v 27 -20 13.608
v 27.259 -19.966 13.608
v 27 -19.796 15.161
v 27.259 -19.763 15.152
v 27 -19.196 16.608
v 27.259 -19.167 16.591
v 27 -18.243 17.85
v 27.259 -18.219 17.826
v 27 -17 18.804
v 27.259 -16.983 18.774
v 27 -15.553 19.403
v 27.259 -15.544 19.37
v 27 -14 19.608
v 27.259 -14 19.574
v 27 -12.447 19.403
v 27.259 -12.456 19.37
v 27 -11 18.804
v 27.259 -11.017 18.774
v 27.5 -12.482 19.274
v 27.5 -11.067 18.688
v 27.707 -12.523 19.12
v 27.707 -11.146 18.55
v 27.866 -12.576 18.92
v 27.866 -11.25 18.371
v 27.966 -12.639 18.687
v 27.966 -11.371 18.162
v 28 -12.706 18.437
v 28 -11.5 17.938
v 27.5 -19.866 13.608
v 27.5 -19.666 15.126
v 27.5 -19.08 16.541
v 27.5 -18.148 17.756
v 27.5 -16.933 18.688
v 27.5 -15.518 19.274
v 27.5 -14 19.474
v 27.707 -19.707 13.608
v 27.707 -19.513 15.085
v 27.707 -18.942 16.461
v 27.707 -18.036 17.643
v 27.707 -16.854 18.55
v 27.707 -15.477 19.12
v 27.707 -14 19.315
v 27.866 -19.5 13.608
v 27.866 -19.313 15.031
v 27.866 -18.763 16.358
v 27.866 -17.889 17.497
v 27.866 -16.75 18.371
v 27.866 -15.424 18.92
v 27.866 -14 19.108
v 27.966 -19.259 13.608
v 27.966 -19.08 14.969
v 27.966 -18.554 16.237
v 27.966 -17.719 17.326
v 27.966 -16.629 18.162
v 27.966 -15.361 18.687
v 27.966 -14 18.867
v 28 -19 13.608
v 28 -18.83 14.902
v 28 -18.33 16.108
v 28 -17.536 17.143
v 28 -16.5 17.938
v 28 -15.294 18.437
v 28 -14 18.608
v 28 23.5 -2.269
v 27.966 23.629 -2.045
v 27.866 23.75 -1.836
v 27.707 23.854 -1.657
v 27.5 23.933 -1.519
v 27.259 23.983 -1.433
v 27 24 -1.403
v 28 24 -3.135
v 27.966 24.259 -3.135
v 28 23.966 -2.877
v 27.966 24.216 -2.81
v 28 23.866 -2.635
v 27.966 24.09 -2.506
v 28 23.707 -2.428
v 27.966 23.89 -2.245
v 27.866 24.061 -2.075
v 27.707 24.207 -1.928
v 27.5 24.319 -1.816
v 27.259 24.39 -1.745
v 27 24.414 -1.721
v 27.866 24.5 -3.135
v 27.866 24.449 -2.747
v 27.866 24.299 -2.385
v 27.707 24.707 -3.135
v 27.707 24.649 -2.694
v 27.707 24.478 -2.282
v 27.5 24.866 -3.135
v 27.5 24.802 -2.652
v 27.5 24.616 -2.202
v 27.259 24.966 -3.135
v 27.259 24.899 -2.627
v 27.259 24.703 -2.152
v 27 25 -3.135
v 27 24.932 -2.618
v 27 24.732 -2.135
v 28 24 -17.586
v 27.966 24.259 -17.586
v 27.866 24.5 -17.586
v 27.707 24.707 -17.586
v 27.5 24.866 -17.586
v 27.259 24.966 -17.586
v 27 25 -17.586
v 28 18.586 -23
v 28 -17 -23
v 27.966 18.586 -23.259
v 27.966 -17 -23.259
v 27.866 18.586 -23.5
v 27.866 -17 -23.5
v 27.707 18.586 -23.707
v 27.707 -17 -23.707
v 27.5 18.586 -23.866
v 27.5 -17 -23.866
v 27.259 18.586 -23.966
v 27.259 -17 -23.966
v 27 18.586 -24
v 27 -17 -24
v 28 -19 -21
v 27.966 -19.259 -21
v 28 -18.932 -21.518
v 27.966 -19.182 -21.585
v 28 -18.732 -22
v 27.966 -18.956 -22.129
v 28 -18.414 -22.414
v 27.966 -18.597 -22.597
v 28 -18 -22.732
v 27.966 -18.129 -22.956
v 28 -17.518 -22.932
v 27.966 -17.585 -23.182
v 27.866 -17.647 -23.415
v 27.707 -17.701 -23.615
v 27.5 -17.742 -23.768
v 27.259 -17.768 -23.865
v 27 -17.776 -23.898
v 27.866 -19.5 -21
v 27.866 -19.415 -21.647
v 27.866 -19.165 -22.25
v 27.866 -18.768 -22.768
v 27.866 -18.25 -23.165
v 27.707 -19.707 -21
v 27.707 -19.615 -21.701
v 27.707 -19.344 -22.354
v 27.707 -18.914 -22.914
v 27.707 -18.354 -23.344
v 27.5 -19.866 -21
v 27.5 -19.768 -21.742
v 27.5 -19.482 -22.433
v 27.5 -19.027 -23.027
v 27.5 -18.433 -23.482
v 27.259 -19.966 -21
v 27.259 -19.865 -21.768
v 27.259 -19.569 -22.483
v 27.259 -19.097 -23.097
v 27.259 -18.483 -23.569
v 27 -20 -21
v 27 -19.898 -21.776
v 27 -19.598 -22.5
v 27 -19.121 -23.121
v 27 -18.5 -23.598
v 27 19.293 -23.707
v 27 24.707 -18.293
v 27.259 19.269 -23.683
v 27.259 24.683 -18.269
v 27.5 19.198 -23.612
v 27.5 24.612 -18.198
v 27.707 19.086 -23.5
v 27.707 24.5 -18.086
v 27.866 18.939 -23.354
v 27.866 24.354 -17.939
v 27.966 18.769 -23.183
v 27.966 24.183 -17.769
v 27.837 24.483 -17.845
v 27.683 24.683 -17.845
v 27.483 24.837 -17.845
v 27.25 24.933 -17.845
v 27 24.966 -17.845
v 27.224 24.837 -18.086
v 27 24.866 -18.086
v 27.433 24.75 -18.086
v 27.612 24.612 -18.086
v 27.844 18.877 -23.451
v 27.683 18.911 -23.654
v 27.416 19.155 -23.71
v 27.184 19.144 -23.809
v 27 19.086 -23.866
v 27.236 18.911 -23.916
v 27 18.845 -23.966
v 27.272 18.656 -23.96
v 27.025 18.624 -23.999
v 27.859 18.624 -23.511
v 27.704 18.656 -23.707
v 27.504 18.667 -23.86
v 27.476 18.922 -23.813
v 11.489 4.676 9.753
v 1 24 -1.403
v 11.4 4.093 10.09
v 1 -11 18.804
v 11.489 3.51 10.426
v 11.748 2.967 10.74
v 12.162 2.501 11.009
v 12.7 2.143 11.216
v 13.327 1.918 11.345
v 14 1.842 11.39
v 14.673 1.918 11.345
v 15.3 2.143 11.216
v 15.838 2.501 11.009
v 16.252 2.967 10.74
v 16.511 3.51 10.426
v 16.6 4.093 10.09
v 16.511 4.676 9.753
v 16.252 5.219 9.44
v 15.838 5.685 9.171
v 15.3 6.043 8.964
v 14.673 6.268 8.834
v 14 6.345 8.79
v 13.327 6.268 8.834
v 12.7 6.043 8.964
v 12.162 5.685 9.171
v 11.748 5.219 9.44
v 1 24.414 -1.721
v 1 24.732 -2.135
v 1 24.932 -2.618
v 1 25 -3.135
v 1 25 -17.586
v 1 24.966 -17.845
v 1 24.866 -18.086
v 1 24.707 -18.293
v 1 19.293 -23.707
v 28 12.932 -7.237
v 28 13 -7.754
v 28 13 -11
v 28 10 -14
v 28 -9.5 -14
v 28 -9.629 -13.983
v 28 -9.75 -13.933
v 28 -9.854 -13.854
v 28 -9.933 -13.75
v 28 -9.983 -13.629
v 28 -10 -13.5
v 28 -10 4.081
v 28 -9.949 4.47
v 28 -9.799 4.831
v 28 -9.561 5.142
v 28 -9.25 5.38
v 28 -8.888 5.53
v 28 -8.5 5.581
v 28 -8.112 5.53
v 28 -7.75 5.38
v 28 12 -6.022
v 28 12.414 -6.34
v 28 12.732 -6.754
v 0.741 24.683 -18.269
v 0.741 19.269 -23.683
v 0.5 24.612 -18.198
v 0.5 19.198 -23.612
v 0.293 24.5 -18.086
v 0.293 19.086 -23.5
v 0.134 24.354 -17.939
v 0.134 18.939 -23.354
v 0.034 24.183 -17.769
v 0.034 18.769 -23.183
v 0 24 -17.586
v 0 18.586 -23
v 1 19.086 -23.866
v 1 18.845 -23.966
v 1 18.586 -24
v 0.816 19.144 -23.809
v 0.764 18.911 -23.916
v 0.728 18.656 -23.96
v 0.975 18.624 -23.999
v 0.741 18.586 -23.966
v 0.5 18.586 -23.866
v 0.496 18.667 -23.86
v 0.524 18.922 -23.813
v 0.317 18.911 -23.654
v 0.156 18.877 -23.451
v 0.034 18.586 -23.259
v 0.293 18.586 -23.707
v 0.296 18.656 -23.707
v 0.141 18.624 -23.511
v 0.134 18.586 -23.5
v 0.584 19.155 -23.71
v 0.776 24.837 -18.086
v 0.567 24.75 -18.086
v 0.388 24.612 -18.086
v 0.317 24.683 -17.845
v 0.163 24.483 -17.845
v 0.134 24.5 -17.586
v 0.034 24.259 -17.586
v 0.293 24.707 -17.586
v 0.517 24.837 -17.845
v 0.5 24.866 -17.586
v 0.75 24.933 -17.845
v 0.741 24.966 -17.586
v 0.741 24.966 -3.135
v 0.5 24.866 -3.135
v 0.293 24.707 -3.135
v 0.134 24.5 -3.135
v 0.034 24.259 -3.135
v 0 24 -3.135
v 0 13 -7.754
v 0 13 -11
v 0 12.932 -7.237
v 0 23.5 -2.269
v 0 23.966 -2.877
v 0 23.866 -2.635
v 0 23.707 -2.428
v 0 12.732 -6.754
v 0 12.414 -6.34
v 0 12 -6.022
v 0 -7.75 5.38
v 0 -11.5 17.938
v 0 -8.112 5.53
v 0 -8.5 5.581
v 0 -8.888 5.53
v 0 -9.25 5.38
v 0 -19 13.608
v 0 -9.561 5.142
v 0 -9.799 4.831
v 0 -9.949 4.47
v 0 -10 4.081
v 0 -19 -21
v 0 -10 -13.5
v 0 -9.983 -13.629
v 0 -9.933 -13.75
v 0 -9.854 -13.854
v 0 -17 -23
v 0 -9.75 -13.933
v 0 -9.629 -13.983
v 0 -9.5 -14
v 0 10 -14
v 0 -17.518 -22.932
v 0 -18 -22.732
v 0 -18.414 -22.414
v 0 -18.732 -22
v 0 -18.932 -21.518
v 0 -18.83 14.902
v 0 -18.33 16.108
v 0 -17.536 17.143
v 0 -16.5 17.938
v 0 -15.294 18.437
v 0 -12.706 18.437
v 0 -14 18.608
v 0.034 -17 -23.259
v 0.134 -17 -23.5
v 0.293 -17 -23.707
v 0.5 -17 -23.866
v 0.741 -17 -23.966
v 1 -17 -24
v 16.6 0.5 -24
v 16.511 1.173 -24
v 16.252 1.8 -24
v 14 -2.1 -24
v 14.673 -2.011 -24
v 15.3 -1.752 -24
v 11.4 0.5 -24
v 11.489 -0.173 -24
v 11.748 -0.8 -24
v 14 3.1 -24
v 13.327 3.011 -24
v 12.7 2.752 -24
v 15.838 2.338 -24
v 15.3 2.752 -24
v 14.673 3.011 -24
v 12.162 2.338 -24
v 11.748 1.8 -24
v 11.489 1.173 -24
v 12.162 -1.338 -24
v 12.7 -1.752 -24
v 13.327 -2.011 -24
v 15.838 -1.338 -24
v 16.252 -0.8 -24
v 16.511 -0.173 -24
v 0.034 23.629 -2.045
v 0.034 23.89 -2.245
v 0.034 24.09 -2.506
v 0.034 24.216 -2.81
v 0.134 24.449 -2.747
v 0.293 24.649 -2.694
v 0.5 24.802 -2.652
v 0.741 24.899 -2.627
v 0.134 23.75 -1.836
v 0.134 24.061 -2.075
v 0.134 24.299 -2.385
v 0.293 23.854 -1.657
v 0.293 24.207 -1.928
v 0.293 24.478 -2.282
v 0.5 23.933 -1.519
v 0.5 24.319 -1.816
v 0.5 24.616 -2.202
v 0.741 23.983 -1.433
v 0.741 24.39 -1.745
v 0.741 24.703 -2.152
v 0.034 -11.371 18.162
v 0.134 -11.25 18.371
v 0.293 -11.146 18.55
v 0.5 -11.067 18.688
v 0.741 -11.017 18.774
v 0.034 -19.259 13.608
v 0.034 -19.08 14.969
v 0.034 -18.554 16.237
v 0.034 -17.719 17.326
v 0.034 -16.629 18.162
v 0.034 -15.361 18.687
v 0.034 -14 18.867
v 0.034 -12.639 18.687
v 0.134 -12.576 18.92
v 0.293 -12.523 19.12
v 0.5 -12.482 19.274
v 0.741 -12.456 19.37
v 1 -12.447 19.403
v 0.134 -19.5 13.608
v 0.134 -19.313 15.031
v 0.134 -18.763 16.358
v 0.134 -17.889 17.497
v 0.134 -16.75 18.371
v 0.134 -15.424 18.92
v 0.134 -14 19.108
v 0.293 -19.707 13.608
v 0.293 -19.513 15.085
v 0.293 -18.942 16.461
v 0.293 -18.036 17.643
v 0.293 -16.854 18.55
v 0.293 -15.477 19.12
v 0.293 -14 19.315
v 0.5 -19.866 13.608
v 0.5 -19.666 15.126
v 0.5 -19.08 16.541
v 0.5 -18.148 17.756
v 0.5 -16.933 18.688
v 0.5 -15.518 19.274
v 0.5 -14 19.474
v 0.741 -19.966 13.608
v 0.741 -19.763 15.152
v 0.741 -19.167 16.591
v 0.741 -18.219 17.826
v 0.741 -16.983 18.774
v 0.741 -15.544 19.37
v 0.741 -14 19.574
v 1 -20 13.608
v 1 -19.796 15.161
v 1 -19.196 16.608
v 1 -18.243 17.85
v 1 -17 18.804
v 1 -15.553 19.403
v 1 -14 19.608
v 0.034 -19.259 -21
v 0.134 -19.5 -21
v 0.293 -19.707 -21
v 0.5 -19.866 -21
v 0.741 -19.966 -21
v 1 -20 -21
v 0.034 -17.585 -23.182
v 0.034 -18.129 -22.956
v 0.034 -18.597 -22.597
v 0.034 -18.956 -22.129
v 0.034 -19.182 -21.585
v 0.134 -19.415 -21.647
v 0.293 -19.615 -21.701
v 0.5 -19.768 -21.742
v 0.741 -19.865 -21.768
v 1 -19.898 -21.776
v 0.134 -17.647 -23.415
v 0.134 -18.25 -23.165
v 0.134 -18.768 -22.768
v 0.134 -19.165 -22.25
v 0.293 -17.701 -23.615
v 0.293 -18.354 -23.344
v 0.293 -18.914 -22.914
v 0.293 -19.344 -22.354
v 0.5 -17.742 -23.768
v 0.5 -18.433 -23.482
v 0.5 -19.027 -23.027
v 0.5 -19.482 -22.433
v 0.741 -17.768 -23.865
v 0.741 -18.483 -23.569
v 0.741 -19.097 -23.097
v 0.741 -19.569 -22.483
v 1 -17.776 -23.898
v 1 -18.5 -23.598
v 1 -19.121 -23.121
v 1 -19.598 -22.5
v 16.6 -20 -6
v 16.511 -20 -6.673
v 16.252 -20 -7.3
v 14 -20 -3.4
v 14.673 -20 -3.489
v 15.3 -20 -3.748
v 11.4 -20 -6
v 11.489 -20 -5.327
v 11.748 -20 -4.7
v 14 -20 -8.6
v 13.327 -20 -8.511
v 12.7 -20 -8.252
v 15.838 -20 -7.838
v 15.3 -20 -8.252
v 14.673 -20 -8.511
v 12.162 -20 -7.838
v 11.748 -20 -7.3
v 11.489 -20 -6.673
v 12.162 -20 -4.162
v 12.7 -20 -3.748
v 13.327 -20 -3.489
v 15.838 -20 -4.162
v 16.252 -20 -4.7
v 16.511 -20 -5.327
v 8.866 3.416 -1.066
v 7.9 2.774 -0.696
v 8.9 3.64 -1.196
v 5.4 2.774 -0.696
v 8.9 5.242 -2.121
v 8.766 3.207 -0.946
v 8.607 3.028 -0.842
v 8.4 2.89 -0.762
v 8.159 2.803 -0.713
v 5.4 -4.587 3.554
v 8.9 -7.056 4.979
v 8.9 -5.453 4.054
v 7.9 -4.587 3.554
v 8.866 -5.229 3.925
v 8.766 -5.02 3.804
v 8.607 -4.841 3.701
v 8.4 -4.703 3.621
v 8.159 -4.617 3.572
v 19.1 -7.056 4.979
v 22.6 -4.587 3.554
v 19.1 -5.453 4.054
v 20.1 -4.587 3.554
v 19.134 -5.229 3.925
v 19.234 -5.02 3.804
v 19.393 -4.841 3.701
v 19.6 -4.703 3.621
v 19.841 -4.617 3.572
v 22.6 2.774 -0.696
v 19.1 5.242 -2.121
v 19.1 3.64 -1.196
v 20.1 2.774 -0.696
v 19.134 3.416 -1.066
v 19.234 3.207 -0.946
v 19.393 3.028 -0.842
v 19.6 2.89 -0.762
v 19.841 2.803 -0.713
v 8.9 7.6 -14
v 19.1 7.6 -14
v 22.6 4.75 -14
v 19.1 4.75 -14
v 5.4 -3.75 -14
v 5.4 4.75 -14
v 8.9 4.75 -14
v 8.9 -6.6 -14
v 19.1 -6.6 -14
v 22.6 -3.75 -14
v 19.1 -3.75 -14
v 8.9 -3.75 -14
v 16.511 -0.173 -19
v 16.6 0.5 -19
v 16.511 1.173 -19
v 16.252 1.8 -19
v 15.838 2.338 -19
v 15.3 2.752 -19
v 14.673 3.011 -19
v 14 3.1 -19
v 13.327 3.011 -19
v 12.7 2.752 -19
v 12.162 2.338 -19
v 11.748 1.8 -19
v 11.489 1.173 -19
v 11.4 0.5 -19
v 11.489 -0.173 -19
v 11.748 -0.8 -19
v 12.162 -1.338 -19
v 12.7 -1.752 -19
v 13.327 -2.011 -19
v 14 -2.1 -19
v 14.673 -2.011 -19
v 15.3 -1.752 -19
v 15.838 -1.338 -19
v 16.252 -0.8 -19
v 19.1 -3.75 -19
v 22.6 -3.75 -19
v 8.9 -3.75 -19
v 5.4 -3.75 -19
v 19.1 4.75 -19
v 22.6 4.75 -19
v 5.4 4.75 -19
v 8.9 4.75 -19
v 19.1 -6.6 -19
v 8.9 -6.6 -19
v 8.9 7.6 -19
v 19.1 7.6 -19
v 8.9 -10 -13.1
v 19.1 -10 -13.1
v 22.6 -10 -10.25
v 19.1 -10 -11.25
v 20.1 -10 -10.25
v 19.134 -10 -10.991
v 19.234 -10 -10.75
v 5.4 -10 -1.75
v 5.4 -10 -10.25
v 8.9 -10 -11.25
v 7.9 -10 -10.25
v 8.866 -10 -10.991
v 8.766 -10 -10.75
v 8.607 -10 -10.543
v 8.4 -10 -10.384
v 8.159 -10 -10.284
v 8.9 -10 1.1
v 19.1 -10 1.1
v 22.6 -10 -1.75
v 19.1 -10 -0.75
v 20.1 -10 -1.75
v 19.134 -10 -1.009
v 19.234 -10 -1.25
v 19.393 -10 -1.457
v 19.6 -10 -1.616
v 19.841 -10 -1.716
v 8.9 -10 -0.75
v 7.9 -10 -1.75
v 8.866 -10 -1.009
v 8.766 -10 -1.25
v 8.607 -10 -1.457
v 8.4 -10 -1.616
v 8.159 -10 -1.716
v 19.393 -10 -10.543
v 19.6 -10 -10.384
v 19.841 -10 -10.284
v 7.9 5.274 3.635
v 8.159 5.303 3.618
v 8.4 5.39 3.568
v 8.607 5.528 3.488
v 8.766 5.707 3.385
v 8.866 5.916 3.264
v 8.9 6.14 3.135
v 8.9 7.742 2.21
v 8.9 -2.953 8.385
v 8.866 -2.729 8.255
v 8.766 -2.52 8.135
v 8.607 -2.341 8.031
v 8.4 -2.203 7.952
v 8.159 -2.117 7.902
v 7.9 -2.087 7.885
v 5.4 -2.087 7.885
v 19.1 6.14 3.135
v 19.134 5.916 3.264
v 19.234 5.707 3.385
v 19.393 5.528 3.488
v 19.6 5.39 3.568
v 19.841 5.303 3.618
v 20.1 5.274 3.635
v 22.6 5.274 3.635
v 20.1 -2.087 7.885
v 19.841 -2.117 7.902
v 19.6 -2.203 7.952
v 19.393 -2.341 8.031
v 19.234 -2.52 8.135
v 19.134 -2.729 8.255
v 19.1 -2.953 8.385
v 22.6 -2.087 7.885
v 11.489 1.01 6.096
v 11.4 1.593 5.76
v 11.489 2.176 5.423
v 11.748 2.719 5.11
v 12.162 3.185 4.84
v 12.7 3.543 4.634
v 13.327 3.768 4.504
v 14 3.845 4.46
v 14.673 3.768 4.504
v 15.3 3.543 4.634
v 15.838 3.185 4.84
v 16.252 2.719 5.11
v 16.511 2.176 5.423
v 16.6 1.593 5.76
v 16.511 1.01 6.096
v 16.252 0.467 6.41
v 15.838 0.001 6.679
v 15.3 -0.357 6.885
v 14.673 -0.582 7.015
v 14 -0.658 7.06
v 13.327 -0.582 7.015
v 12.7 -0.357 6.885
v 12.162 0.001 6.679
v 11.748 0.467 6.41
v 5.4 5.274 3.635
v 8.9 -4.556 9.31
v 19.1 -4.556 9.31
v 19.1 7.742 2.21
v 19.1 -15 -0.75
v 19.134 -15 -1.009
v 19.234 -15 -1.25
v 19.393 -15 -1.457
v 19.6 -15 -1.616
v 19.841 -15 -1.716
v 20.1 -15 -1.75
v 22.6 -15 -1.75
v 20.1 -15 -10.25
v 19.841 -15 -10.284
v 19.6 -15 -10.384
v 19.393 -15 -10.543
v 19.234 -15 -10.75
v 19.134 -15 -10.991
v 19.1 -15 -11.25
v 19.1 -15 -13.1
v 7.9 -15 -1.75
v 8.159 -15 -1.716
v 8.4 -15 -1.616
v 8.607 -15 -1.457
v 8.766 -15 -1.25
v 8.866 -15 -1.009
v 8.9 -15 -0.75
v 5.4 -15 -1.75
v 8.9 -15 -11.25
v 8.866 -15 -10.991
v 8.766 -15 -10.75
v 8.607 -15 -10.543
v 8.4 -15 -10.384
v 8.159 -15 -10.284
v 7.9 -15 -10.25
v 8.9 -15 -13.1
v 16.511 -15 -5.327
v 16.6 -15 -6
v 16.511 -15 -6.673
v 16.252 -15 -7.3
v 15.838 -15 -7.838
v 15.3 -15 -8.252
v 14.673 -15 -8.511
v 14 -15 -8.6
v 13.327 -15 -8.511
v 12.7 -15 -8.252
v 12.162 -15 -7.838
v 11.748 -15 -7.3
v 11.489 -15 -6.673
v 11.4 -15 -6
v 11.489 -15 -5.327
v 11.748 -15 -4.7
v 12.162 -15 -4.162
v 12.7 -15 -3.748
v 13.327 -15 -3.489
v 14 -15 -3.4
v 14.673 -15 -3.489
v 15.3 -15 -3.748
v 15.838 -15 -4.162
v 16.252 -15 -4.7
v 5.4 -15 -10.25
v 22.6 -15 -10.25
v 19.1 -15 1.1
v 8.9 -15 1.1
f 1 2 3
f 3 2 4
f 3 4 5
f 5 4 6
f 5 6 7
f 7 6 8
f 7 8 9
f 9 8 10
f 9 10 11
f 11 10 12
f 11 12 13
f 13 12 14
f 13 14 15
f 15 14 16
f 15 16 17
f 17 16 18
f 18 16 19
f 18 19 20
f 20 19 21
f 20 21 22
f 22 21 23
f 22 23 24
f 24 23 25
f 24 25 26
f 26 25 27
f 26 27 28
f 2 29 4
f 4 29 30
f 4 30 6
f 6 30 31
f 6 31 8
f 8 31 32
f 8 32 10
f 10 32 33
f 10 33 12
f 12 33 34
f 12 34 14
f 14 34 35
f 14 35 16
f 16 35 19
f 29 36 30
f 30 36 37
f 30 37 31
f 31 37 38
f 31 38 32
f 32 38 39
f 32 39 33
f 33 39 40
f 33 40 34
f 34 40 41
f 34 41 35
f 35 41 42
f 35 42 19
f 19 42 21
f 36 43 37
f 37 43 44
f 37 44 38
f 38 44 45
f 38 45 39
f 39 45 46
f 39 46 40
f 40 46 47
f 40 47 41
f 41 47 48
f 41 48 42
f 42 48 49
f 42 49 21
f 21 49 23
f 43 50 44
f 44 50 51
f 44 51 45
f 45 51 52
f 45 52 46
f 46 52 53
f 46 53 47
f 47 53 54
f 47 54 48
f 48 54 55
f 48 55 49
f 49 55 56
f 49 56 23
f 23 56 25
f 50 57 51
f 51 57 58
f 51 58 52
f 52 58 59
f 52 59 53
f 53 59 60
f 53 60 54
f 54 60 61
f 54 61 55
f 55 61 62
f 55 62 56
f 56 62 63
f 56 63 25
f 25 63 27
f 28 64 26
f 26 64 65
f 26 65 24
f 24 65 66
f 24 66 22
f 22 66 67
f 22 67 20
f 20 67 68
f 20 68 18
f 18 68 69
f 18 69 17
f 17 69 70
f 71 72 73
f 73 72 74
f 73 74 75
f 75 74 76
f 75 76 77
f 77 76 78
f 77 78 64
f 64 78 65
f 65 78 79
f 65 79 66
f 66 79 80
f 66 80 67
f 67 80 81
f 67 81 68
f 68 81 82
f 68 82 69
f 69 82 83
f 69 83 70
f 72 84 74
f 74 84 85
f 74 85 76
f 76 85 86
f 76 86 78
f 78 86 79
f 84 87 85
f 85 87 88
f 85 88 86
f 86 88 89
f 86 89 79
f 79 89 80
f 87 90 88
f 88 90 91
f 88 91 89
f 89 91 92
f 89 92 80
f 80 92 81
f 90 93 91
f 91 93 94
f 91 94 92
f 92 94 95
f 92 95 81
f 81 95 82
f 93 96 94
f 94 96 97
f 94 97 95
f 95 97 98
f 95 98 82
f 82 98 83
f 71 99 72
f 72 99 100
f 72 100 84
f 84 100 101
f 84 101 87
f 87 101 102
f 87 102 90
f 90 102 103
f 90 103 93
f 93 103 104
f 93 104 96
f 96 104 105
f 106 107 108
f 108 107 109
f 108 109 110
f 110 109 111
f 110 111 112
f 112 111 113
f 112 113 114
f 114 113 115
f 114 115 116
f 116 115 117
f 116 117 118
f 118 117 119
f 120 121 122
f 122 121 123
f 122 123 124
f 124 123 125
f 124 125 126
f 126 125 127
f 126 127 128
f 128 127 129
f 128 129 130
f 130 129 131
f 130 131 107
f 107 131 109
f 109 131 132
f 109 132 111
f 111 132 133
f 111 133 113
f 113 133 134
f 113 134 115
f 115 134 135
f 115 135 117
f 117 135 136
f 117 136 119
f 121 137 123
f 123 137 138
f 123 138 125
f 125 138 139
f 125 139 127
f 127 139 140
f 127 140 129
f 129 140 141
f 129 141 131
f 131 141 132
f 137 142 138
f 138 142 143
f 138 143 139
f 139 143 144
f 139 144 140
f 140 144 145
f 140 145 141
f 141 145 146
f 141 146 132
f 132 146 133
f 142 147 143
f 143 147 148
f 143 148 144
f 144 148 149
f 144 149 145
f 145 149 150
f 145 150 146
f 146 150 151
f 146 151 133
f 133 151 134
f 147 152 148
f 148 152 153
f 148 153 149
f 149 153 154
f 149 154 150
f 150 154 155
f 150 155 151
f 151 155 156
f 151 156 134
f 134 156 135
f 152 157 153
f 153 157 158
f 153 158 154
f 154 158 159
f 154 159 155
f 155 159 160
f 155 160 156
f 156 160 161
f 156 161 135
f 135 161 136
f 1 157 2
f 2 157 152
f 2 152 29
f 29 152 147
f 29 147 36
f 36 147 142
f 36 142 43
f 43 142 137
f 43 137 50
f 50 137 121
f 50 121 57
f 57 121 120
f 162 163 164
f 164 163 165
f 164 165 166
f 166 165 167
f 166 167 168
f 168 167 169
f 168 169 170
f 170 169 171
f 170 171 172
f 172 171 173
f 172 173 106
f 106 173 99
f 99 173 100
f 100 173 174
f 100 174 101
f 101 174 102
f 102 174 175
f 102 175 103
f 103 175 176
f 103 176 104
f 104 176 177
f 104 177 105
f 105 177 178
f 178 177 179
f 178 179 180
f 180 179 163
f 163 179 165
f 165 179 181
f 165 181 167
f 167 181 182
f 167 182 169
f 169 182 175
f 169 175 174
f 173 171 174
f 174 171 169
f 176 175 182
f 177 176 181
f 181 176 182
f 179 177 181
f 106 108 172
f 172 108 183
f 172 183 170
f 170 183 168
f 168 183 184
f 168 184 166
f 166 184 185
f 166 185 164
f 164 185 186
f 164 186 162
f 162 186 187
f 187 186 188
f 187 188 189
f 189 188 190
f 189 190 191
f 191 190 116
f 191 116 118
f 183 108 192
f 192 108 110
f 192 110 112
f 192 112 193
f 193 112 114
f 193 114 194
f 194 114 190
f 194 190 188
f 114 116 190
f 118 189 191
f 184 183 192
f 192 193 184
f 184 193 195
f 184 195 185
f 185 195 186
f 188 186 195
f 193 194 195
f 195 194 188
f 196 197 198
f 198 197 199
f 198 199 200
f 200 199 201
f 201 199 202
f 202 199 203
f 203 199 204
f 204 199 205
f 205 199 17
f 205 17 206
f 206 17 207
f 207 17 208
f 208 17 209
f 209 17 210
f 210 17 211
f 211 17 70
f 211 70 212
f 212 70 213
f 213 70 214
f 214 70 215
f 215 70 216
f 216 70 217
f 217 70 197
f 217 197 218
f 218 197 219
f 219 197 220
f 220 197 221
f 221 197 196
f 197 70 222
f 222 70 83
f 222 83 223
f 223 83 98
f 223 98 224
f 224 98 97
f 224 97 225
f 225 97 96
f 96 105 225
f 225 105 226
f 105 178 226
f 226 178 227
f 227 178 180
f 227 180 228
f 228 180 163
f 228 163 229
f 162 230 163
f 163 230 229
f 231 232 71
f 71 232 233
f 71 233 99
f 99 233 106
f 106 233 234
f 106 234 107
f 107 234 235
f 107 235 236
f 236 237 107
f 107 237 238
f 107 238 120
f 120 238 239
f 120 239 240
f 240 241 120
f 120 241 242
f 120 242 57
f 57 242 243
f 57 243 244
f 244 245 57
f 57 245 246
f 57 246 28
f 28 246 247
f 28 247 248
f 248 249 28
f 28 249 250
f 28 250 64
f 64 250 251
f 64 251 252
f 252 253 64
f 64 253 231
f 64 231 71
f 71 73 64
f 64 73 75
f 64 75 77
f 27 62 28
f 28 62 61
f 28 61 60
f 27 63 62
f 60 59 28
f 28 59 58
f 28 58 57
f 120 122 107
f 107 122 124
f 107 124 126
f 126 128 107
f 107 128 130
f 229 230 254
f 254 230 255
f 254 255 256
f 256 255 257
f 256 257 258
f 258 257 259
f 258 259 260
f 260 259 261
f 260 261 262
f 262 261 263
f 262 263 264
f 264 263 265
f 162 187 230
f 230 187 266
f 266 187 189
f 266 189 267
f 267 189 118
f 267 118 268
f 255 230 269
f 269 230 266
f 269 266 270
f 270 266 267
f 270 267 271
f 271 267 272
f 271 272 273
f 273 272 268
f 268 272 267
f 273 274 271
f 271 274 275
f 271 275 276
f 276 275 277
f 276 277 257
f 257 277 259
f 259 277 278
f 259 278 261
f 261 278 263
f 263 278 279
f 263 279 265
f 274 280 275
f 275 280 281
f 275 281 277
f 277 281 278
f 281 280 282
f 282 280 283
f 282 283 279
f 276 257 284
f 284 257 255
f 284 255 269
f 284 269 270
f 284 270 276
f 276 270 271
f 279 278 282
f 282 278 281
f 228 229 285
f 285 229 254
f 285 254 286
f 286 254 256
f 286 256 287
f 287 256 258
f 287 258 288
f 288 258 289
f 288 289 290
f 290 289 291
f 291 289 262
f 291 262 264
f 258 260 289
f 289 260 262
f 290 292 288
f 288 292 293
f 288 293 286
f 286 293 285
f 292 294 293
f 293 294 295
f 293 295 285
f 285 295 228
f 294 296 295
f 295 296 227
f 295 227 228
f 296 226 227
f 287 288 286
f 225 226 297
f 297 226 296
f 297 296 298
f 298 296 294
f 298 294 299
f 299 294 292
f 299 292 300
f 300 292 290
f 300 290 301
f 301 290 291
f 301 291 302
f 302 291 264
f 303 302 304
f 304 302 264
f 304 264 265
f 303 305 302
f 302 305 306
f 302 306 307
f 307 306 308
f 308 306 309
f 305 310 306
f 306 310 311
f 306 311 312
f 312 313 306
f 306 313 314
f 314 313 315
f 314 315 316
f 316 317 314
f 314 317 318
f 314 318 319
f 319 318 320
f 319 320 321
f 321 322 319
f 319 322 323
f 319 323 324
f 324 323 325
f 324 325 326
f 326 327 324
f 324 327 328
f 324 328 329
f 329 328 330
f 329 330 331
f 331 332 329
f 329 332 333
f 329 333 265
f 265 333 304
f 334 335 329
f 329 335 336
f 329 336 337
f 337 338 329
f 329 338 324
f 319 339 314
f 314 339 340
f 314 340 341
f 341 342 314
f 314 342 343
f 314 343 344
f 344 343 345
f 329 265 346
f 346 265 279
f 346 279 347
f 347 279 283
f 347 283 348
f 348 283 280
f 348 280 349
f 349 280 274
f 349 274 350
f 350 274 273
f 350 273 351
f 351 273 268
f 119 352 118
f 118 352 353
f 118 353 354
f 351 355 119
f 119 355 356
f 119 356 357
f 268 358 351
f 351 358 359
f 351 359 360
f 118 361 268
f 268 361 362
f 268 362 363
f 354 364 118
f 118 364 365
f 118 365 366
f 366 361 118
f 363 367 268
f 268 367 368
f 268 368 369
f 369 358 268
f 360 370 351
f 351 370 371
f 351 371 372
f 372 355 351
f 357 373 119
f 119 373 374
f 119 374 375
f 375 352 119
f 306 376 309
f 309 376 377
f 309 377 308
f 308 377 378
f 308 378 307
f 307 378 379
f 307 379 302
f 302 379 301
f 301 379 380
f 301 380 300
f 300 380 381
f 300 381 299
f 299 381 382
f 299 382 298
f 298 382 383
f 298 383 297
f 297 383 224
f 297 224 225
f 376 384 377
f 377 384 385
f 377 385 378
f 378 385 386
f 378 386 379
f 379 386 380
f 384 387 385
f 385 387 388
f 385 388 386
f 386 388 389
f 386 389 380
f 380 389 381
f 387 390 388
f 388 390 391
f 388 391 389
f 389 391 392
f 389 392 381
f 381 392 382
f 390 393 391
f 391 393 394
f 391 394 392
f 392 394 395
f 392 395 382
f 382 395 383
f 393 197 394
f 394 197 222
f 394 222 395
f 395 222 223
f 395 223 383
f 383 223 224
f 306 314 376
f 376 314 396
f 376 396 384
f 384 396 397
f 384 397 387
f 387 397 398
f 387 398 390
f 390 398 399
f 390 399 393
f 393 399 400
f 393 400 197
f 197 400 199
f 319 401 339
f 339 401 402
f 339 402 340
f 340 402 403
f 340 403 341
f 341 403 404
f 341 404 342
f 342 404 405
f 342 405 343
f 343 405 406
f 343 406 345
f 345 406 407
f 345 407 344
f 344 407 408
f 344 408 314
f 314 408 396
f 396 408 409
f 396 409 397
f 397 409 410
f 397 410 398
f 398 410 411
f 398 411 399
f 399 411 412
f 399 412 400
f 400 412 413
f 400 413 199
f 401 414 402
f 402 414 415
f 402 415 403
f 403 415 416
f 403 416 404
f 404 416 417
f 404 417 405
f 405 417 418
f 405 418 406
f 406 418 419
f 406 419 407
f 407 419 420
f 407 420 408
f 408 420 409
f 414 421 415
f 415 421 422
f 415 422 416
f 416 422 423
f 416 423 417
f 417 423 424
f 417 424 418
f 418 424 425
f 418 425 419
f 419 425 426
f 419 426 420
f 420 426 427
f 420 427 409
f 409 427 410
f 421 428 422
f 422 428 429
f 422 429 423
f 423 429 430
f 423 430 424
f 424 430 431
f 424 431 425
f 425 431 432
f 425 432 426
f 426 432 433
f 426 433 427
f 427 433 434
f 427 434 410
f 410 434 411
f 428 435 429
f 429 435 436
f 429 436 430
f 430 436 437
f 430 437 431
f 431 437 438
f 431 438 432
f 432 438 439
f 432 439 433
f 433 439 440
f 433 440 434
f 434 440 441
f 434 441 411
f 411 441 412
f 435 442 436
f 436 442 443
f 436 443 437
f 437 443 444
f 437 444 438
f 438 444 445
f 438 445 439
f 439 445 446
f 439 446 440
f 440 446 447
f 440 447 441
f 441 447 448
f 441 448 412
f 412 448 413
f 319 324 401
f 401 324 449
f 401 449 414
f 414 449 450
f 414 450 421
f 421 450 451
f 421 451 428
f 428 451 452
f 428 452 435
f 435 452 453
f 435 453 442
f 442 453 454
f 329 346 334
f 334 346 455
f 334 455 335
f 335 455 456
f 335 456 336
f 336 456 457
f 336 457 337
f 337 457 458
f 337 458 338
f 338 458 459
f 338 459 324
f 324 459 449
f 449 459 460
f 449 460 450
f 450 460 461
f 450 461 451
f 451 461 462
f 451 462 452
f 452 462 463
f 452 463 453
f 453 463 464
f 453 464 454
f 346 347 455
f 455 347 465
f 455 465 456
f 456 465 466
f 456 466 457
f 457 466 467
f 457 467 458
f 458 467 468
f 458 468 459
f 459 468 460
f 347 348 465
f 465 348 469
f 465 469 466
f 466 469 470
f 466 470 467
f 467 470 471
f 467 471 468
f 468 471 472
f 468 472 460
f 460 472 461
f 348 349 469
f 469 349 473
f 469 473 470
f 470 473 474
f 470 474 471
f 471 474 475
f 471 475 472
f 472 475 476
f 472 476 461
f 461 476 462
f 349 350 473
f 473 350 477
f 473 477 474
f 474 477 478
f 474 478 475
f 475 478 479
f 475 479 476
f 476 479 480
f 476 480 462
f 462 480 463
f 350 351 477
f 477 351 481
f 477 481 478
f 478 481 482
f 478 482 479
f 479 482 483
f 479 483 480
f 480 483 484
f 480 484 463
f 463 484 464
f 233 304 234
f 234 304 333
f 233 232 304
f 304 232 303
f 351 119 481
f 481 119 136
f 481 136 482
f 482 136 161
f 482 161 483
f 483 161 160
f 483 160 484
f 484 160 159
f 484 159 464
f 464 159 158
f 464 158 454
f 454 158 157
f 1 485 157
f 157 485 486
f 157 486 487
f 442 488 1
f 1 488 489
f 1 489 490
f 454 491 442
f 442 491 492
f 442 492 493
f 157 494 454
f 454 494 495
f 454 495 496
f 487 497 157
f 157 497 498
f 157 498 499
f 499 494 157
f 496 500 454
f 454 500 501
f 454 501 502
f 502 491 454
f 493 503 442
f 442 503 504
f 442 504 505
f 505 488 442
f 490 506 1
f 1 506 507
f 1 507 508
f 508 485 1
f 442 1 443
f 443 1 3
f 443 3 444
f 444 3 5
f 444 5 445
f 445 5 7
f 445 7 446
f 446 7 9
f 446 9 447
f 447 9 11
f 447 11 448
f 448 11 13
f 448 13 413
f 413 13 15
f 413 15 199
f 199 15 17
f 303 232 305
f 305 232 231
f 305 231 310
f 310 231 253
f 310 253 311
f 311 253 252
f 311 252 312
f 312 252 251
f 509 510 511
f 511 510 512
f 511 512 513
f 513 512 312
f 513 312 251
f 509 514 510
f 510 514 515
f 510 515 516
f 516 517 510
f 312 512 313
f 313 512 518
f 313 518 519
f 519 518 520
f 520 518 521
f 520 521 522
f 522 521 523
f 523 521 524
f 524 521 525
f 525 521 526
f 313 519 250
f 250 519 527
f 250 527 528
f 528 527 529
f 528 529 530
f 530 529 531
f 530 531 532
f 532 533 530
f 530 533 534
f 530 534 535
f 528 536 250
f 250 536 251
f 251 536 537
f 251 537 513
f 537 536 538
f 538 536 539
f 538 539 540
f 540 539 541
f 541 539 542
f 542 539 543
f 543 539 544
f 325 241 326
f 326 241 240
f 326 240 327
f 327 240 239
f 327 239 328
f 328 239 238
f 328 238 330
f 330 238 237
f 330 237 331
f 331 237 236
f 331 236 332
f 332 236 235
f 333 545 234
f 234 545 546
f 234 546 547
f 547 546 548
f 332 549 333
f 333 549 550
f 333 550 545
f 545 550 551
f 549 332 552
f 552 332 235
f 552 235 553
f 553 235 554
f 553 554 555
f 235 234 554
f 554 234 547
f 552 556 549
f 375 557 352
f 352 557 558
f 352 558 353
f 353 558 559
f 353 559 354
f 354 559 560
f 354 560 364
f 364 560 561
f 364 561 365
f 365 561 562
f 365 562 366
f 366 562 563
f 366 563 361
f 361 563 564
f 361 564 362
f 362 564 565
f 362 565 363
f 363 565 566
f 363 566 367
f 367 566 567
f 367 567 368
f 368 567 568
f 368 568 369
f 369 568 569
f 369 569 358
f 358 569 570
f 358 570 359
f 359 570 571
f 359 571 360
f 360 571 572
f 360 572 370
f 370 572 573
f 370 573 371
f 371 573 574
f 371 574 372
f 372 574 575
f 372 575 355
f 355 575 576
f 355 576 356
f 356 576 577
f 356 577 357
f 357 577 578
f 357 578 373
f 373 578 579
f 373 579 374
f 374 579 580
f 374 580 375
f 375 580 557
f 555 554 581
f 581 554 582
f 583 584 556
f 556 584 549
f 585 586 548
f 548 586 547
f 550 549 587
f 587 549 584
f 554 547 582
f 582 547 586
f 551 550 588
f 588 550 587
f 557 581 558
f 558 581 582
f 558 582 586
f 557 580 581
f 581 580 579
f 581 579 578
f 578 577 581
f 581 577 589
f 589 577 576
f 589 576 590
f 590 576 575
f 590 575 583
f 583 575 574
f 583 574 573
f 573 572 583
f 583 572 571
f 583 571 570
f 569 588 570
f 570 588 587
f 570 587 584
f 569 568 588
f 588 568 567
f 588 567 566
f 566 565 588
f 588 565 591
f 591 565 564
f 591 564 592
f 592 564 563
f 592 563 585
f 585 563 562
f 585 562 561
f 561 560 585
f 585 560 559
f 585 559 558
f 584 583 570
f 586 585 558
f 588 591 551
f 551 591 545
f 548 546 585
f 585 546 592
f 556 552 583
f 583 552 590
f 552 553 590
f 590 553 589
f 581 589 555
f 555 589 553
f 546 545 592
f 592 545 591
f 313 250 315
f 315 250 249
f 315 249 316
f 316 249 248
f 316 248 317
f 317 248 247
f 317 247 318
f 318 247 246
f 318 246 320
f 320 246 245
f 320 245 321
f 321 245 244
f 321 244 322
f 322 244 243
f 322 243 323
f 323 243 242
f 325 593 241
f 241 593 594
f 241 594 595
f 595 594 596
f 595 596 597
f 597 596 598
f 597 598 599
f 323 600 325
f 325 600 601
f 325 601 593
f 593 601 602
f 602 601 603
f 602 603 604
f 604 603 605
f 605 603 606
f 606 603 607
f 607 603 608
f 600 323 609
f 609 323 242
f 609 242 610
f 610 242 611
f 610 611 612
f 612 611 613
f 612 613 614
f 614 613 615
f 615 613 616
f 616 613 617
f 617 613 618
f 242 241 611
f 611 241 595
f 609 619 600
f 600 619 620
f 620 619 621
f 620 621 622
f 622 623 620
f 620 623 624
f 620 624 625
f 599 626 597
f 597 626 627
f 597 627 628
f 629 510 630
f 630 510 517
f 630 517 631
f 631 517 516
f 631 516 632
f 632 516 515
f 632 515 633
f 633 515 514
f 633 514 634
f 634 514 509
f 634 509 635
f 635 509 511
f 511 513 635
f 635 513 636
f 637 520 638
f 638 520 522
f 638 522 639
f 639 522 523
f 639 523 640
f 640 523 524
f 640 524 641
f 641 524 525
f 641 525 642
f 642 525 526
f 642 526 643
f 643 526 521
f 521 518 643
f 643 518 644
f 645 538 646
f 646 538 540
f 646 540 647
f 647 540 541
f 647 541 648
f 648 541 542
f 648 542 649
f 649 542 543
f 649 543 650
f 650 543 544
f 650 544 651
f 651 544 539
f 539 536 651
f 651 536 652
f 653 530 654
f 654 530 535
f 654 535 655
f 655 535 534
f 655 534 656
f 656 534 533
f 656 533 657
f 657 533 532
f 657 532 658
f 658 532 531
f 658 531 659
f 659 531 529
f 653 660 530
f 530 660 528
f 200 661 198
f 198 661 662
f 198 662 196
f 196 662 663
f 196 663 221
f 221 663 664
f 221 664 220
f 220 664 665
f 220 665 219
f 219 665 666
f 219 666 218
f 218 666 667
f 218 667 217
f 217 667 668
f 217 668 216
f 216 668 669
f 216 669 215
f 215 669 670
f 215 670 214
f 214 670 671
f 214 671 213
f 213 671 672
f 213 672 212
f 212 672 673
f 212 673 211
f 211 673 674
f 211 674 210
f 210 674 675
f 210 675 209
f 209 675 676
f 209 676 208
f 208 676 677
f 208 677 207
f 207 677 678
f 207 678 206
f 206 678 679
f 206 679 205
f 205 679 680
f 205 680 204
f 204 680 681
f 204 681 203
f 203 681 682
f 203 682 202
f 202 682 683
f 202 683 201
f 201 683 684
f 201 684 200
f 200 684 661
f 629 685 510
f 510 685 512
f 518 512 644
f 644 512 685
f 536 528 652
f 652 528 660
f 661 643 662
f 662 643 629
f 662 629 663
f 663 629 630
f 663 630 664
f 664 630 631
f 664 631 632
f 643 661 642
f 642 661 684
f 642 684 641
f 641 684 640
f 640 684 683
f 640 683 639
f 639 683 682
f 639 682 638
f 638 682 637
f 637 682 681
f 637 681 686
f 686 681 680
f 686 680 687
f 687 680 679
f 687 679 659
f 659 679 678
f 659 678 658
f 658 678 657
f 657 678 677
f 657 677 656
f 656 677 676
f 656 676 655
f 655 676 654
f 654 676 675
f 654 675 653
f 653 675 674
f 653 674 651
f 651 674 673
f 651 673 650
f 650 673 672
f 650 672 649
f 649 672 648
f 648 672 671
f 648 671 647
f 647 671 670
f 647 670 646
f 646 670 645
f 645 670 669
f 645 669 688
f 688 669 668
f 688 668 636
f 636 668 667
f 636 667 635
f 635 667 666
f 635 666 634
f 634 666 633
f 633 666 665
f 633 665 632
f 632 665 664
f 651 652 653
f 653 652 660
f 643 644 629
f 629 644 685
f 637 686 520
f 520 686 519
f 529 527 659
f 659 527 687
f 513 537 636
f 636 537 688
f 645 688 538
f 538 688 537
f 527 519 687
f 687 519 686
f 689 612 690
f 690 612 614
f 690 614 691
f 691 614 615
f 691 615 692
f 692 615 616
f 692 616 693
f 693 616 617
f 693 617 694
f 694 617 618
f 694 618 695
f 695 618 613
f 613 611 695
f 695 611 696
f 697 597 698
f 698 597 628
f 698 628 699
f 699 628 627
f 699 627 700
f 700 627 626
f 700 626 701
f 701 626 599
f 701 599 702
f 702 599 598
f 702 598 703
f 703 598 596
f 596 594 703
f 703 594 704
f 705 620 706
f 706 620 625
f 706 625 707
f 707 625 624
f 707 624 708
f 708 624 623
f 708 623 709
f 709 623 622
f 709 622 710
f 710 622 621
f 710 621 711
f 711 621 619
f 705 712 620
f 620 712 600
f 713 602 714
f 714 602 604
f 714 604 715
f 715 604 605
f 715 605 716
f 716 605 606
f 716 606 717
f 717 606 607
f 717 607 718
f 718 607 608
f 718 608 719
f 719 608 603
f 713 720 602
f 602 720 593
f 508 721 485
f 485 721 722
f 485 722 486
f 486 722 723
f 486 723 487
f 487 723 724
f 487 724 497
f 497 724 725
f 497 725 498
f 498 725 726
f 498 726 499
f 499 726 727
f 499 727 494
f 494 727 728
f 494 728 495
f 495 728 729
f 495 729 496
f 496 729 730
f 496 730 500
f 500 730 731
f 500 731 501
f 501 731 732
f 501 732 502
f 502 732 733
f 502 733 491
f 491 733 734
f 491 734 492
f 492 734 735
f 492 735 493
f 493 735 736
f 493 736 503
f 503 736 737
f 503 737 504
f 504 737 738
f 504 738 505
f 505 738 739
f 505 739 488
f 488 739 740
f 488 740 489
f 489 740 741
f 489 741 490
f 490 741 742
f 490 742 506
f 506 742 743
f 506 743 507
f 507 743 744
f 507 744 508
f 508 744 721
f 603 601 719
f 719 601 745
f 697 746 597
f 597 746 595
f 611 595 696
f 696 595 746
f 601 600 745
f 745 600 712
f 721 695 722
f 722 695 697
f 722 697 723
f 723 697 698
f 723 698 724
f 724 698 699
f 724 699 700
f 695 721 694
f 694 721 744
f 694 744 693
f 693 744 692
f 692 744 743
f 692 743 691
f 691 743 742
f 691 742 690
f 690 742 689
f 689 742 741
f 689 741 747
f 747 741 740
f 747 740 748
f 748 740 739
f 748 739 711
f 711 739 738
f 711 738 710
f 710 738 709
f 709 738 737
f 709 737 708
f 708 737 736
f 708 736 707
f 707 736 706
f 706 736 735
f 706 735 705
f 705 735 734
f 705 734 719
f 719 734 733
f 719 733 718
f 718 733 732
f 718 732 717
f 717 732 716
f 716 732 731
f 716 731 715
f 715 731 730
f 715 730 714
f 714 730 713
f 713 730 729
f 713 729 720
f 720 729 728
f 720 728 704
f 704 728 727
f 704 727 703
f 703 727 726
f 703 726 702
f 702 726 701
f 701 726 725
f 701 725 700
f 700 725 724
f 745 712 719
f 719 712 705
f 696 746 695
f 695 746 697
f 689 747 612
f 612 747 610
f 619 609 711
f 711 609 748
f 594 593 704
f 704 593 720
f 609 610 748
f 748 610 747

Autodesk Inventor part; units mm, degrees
ref_plane "YZ Plane" through (0, 0, 0) normal (1, 0, 0) x (0, 1, 0)
ref_plane "XZ Plane" through (0, 0, 0) normal (0, 1, 0) x (-1, 0, 0)
ref_plane "XY Plane" through (0, 0, 0) normal (0, 0, 1) x (1, 0, 0)
sketch "スケッチ1" plane through (0, 0, 0) normal (1, 0, 0) x (0, 1, 0)
  line L0 (-20, 24) -> (63.1384, 24)
  line L1 (63.1384, 24) -> (63.1384, -24)
  line L2 (25, -24) -> (-20, -24)
  line L3 (-20, -24) -> (-20, 24)
  line L4 (-20, 24) -> (63.1384, -24)
  line L5 (-20, -24) -> (25, -24)
  line L6 (25, -24) -> (25, -1.9808)
  line L7 (25, 24) -> (-20, 24)
  line L8 (-20, 24) -> (-20, -24)
  point P0 (0, 0)
  dimension "d6" = 24
  dimension "d7" = 48
  dimension "d96" = 45
  dimension "d98" = 83.1384
extrude "押し出し1" add sketch "スケッチ1" along normal blind 28 contours L4 L6 L2 L3
sketch "スケッチ2" plane through (28, 0, 0) normal (1, 0, 0) x (0, 0, -1)
  line L0 (-6.6795, -10) -> (14, -10)
  line L1 (14, -10) -> (14, 25.8179)
  line L2 (14, 25.8179) -> (-6.6795, 25.8179)
  line L3 (-6.6795, 25.8179) -> (-6.6795, 13)
  line L4 (-24, -20) -> (24, -20) projected
  line L5 (24, -20) -> (24, 25) projected
  line L6 (-6.6795, -10) -> (14, 25.8179)
  line L7 (14, -10) -> (-6.679, -10)
  line L8 (-6.679, -10) -> (-6.679, 13)
  line L9 (6.5996, 13) -> (14, 13)
  line L10 (14, 13) -> (14, -10)
  point P0 (0, 0)
  point P1 (24, 63.1384)
  dimension "d10" = 20.6795
  dimension "d11" = 35.8179
  dimension "d12" = 10
  dimension "d13" = 10
  dimension "d19" = 20.679
  dimension "d75" = 23
extrude "押し出し2" cut sketch "スケッチ2" against normal blind 40 contours L6 L9 L1 L0
sketch "スケッチ3" plane through (28, -10, 6.6795) normal (0, 1, 0) x (1, 0, 0)
  line L0 (0, 20.6795) -> (0, 0) projected
  line L1 (0, 20.6795) -> (-28, 20.6795) projected
  line L2 (-19.1, 5.5795) -> (-8.9, 5.5795)
  line L3 (-8.9, 5.5795) -> (-8.9, 19.7795)
  line L4 (-8.9, 19.7795) -> (-19.1, 19.7795)
  line L5 (-19.1, 19.7795) -> (-19.1, 5.5795)
  line L6 (-22.6, 8.4295) -> (-5.4, 8.4295)
  line L7 (-5.4, 8.4295) -> (-5.4, 16.9295)
  line L8 (-5.4, 16.9295) -> (-22.6, 16.9295)
  line L9 (-22.6, 16.9295) -> (-22.6, 8.4295)
  point P0 (-28, 6.6795)
  point P1 (-14, 12.6795)
  dimension "d16" = 14
  dimension "d17" = 8
  dimension "d21" = 10.2
  dimension "d22" = 14.2
  dimension "d23" = 7.1
  dimension "d24" = 5.1
  dimension "d25" = 17.2
  dimension "d26" = 8.5
  dimension "d27" = 4.25
  dimension "d28" = 8.6
extrude "押し出し3" cut sketch "スケッチ3" against normal blind 5
sketch "スケッチ4" plane through (28, -15, 6.6795) normal (0, 1, 0) x (1, 0, 0)
  line L0 (0, 20.6795) -> (-28, 20.6795) projected
  line L1 (0, 20.6795) -> (0, 0) projected
  circle A0 centre (-14, 12.6795) radius 2.6
  point P0 (-28, 6.6795)
  dimension "d31" = 8
  dimension "d32" = 14
  dimension "d33" = 5.2
extrude "押し出し4" cut sketch "スケッチ4" against normal blind 5
fillet "フィレット1" radius 1 4 edges at (8.9, -12.5, -10.25) (8.9, -12.5, -1.75) (19.1, -12.5, -10.25) (19.1, -12.5, -1.75)
sketch "スケッチ8" plane through (28, 25.8179, -14) normal (0, -0.5, -0.866) x (-1, 0, 0)
  line L0 (0, -41.359) -> (28, -41.359) projected
  line L1 (5.4, -35.109) -> (22.6, -35.109)
  line L2 (22.6, -35.109) -> (22.6, -26.609)
  line L3 (22.6, -26.609) -> (5.4, -26.609)
  line L4 (5.4, -26.609) -> (5.4, -35.109)
  line L5 (28, -14.8009) -> (28, -41.359) projected
  line L6 (8.9, -37.959) -> (19.1, -37.959)
  line L7 (19.1, -37.959) -> (19.1, -23.759)
  line L8 (19.1, -23.759) -> (8.9, -23.759)
  line L9 (8.9, -23.759) -> (8.9, -37.959)
  point P0 (28, -29.359)
  point P1 (14, -30.859)
  dimension "d54" = 10.5
  dimension "d55" = 17.2
  dimension "d56" = 8.5
  dimension "d57" = 14
  dimension "d58" = 8.6
  dimension "d59" = 4.25
  dimension "d60" = 10.2
  dimension "d61" = 14.2
  dimension "d62" = 7.1
  dimension "d63" = 5.1
extrude "押し出し7" cut sketch "スケッチ8" against normal blind 5
sketch "スケッチ9" plane through (28, 28.3179, -9.6699) normal (0, -0.5, -0.866) x (-1, 0, 0)
  line L0 (0, -41.359) -> (28, -41.359) projected
  line L1 (28, -14.8009) -> (28, -41.359) projected
  circle A0 centre (14, -30.859) radius 2.6
  point P0 (28, -29.359)
  point P1 (28, 0)
  dimension "d66" = 10.5
  dimension "d67" = 14
  dimension "d68" = 5.2
extrude "押し出し8" cut sketch "スケッチ9" against normal blind 5
fillet "フィレット2" radius 1 4 edges at (19.1, -3.3368, 5.7204) (19.1, 4.0244, 1.4704) (8.9, -3.3368, 5.7204) (8.9, 4.0244, 1.4704)
fillet "フィレット4" radius 1.5 1 edges at (14, -10, 6.6795)
sketch "スケッチ10" plane through (0, 13, -14) normal (0, 0, 1) x (1, 0, 0)
  line L0 (0, -23) -> (0, 0) projected
  line L1 (28, -23) -> (0, -23) projected
  line L2 (22.6, -8.25) -> (5.4, -8.25)
  line L3 (5.4, -8.25) -> (5.4, -16.75)
  line L4 (5.4, -16.75) -> (22.6, -16.75)
  line L5 (22.6, -16.75) -> (22.6, -8.25)
  line L6 (19.1, -5.4) -> (8.9, -5.4)
  line L7 (8.9, -5.4) -> (8.9, -19.6)
  line L8 (8.9, -19.6) -> (19.1, -19.6)
  line L9 (19.1, -19.6) -> (19.1, -5.4)
  point P0 (0, -13)
  point P1 (14, -12.5)
  point P2 (0, -22.5)
  dimension "d76" = 14
  dimension "d77" = 10.5
  dimension "d78" = 17.2
  dimension "d79" = 8.5
  dimension "d80" = 8.6
  dimension "d81" = 4.25
  dimension "d82" = 10.2
  dimension "d83" = 14.2
  dimension "d84" = 7.1
  dimension "d85" = 5.1
extrude "押し出し9" cut sketch "スケッチ10" against normal blind 5
sketch "スケッチ11" plane through (0, 13, -19) normal (0, 0, 1) x (1, 0, 0)
  line L0 (28, -23) -> (0, -23) projected
  line L1 (0, -23) -> (0, 0) projected
  circle A0 centre (14, -12.5) radius 2.6
  point P0 (0, -13)
  dimension "d88" = 10.5
  dimension "d89" = 14
  dimension "d90" = 5.2
extrude "押し出し10" cut sketch "スケッチ11" against normal blind 5
fillet "フィレット6" radius 0.5 1 edges at (14, -10, -14)
fillet "フィレット8" radius 2 1 edges at (14, 13, -6.5996)
chamfer "面取り1" distance 6 angle 45 1 edges at (14, 25, -24)
fillet "フィレット9" radius 6 1 edges at (14, -20, 24)
fillet "フィレット10" radius 3 1 edges at (14, -20, -24)
fillet "フィレット11" radius 2 1 edges at (14, 25, -1.9808)
chamfer "面取り3" distance 3 angle 45 1 edges at (14, 13, -14)
fillet "フィレット12" radius 1 7 edges at (0, -17, 18.8038) (0, -20, -3.6962) (0, -19.1213, -23.1213) (0, 1, -24) (0, 24.7321, -2.1355) (0, 25, -10.5677) (0, 6.5, 8.7002)
fillet "フィレット13" radius 1 5 edges at (0.2929, 24.7071, -18.2929) (14.5, 25, -18) (0.2929, 19.2929, -23.7071) (14.5, 19, -24) (0, 22, -21)
fillet "フィレット14" radius 1 10 edges at (28, -17, 18.8038) (28, -20, -3.6962) (28, -19.1213, -23.1213) (28, 0.7929, -24) (28, 18.9685, -23.9239) (28, 22, -21) (28, 24.9239, -17.9685) (28, 25, -10.3606) (28, 24.7321, -2.1355) (28, 6.5, 8.7002)
properties part number "triangle_jig"
